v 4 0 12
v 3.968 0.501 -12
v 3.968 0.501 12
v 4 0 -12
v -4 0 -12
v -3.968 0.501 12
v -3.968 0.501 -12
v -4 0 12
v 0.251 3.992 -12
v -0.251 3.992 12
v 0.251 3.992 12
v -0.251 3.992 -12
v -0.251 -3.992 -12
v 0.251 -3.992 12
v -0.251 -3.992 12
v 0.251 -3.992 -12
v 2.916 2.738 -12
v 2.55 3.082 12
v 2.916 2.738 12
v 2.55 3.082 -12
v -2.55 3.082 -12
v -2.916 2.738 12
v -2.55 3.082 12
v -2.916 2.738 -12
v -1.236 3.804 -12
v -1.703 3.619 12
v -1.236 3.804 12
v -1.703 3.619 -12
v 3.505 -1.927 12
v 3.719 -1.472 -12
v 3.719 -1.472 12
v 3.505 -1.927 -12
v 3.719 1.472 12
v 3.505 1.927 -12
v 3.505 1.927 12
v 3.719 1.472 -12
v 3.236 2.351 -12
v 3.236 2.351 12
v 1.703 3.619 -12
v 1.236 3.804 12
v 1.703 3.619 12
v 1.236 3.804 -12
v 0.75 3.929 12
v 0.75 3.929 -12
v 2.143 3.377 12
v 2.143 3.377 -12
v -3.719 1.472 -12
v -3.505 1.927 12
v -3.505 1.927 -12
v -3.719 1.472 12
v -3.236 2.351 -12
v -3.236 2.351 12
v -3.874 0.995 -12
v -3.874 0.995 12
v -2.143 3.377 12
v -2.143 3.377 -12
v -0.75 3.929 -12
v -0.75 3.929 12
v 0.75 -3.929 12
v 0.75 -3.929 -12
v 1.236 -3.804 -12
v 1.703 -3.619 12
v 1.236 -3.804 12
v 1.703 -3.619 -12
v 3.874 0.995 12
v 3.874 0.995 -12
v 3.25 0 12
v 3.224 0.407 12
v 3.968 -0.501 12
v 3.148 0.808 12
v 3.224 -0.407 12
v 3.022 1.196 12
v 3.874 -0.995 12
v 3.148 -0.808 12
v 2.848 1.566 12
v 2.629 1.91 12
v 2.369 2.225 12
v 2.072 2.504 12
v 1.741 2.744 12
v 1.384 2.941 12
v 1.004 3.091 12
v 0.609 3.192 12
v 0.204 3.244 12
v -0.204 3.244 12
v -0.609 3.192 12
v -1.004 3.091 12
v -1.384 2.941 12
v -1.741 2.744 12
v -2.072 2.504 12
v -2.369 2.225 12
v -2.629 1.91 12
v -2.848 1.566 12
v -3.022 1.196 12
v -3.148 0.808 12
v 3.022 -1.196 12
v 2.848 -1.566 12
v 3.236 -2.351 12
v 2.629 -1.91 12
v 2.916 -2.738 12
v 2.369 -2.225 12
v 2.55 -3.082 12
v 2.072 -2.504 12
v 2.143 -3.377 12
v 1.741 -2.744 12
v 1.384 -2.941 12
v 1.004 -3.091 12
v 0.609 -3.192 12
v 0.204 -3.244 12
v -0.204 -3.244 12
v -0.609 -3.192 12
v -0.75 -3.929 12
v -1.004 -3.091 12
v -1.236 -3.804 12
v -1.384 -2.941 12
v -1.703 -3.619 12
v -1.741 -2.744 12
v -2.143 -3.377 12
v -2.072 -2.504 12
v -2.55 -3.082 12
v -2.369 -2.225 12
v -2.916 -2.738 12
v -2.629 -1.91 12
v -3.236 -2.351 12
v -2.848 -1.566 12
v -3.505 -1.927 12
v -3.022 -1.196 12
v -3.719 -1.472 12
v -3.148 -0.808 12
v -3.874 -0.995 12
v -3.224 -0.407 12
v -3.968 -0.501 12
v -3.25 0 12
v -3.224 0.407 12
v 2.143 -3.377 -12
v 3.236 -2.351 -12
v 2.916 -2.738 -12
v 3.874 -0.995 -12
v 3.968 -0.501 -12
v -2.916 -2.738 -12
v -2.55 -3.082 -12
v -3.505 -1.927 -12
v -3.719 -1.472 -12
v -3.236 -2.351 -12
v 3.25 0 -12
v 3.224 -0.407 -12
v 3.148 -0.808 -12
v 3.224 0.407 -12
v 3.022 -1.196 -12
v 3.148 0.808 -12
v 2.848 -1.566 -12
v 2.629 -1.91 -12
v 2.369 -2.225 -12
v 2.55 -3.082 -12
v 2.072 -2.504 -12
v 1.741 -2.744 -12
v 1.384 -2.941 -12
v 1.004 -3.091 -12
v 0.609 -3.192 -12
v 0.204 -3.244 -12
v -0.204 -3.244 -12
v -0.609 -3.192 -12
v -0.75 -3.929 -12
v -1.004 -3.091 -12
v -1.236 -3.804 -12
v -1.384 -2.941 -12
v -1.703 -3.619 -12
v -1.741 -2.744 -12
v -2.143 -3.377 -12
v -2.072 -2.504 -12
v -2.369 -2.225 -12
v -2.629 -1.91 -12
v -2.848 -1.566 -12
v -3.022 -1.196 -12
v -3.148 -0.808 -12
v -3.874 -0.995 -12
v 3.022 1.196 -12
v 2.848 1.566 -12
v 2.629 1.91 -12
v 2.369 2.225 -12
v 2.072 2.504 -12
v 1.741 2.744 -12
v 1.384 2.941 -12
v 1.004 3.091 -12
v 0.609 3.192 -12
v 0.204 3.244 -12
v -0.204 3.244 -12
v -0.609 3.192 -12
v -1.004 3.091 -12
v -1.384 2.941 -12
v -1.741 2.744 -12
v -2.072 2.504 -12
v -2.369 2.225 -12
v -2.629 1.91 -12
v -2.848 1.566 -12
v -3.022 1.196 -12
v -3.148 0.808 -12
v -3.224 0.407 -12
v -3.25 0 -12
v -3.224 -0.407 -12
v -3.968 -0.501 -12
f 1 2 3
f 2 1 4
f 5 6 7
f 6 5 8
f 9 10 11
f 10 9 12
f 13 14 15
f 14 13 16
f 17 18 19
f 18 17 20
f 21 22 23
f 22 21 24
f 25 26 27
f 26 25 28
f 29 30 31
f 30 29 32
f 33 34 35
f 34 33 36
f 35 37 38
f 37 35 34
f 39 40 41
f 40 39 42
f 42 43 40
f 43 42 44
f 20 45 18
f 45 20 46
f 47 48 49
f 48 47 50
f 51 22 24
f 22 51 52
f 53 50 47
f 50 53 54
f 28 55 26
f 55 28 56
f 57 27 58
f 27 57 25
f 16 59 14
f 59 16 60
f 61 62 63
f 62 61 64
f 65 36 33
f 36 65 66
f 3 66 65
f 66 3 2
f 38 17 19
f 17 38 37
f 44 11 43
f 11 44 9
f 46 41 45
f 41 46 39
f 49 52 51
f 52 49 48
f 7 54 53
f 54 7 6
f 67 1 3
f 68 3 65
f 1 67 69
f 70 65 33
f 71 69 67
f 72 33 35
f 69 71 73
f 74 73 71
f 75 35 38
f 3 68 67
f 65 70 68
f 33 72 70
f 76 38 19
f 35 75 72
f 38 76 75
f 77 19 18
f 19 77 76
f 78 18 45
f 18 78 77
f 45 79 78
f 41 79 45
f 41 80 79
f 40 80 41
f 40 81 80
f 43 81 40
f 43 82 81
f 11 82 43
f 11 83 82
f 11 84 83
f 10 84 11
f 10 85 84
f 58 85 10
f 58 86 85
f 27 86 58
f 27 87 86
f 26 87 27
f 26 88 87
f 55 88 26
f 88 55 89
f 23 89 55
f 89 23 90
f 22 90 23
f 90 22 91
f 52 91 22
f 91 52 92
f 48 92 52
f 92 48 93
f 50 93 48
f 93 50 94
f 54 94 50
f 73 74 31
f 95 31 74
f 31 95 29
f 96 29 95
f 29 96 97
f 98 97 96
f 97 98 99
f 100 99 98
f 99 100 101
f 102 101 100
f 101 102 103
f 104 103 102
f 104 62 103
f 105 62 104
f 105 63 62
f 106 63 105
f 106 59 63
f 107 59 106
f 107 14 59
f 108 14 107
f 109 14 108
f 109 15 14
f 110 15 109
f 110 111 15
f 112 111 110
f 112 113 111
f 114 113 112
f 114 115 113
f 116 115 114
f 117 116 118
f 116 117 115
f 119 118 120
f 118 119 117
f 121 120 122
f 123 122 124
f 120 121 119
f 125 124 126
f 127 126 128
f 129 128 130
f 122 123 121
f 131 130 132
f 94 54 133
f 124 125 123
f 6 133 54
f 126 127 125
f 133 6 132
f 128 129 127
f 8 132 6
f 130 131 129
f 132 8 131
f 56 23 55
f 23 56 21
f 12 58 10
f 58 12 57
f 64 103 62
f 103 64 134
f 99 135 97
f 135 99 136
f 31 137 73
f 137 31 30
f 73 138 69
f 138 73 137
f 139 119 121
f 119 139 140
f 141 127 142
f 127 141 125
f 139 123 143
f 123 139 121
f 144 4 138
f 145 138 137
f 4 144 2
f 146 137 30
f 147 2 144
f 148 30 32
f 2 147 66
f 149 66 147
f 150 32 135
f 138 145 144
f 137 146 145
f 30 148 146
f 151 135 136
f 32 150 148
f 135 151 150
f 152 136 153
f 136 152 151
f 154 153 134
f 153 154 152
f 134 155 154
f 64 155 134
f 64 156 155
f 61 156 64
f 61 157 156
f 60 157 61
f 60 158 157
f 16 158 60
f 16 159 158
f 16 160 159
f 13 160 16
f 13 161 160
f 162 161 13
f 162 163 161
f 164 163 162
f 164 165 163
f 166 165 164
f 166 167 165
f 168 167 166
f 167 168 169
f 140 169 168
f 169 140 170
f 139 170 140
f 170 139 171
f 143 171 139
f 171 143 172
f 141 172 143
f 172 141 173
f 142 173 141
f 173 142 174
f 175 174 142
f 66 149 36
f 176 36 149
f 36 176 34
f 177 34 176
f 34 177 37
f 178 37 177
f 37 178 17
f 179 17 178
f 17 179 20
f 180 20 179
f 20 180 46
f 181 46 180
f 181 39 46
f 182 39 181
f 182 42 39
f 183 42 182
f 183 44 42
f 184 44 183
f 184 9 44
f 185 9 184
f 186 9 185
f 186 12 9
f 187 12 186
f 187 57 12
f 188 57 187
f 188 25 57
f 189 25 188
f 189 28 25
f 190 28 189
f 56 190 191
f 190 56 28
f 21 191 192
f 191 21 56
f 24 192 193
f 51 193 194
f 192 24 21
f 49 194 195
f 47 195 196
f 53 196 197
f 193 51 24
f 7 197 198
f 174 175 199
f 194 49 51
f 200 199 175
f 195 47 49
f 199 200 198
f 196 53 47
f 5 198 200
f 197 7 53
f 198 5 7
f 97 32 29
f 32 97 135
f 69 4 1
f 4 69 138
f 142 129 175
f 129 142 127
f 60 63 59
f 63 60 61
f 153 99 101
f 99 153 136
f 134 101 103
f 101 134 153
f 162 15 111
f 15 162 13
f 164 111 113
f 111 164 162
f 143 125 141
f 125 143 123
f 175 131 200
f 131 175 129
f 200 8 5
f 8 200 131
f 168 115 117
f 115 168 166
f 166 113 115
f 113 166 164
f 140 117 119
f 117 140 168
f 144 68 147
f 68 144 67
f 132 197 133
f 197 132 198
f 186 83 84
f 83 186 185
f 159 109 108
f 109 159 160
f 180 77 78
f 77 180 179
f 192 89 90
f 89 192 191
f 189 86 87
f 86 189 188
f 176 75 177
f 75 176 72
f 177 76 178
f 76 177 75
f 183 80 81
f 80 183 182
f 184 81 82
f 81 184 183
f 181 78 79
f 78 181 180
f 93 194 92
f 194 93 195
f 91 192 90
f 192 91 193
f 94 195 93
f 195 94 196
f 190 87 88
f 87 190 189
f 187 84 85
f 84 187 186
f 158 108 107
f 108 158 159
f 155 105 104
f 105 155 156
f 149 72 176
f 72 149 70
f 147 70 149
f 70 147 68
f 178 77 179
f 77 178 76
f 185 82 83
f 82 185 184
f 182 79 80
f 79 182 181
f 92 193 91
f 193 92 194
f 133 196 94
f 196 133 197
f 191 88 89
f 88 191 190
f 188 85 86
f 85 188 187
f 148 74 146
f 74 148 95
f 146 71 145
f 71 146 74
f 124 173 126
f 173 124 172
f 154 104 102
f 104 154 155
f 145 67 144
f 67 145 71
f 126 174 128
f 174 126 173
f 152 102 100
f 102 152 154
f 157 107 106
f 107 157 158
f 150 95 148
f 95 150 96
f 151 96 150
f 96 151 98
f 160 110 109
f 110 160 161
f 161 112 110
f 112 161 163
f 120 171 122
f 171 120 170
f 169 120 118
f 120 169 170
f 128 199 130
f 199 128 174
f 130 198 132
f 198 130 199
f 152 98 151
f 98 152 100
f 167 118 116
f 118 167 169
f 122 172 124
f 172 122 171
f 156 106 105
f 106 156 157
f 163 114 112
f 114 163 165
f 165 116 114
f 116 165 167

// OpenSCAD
$fn = 50;


difference() {
	union() {
		translate(v = [0, 0, -12.0000000000]) {
			cylinder(h = 24, r = 4.0000000000);
		}
	}
	union() {
		translate(v = [0, 0, -100.0000000000]) {
			cylinder(h = 200, r = 3.2500000000);
		}
	}
}
